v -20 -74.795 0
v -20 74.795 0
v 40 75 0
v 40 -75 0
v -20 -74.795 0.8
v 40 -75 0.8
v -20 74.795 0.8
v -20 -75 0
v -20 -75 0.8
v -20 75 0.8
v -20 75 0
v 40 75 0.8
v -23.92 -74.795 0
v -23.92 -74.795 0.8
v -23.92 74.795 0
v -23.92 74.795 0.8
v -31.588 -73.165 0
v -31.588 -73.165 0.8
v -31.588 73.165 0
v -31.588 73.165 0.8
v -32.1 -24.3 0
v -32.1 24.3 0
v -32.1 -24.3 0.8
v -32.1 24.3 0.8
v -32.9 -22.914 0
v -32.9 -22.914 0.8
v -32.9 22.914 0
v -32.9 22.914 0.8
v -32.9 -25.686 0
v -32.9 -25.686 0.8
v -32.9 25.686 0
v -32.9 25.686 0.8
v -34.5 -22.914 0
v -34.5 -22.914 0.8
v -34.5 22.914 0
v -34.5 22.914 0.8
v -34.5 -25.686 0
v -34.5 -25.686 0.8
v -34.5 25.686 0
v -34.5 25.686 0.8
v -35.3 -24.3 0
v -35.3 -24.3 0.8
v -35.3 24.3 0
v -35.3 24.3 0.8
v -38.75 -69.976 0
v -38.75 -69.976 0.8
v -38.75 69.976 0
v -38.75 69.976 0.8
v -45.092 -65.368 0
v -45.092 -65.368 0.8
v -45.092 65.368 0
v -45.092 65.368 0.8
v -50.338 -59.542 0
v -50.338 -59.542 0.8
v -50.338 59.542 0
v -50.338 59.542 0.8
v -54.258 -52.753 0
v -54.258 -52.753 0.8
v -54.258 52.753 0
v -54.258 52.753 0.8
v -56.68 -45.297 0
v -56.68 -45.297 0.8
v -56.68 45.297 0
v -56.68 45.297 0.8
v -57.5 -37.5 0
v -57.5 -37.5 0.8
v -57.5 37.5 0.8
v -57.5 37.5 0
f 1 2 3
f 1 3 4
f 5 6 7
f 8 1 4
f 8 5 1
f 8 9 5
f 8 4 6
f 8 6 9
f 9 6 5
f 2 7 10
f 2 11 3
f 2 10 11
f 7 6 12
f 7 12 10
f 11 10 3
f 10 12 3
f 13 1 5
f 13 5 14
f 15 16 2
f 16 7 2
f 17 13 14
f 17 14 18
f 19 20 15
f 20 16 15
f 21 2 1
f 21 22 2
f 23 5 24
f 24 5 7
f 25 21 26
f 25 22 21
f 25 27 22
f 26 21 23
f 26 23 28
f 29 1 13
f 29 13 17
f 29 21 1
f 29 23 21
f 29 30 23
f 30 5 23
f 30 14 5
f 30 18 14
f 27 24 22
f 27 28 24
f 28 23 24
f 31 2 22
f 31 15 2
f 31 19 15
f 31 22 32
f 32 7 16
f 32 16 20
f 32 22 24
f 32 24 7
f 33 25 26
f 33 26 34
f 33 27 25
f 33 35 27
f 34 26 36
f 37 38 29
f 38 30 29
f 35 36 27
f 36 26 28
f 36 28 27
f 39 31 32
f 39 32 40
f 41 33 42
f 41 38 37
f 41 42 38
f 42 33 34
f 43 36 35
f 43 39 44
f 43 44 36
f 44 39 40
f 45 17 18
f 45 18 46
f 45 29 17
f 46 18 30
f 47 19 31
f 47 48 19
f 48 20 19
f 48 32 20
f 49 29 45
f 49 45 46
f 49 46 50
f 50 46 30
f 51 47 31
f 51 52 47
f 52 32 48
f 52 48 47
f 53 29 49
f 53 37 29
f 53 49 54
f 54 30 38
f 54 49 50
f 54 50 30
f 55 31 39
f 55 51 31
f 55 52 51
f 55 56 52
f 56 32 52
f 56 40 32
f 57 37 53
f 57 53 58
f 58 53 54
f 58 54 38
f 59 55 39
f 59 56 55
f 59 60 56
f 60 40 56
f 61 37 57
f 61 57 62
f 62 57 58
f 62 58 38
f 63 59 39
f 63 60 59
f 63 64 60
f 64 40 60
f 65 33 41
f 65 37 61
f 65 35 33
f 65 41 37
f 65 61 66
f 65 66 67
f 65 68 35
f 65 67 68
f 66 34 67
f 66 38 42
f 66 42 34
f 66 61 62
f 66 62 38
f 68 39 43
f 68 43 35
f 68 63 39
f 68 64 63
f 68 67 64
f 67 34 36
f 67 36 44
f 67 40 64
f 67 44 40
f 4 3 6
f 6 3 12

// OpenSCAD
// file: lib/copyFunctions.scad
// copyFunctions.scad - library for copy versions of mirror/rotate/translate
// May 2019

// general use: just like normal version of given function

module rotate_copy(v=[1,0,0])
{
    children();
    rotate(v) children();
}

module mirror_copy(v=[1,0,0])
{
    children();
    mirror(v) children();
}

module translate_copy(v=[1,0,0])
{
    children();
    translate(v) children();
}
// file: ../configuration.scad
//$fn=40; // model faces resolution.

//COMMON PARAMETERS
global_clearance = 0.5; // additional space where needed due to printer precision
layer_thickness = 0.3; // layer which is going to be removed after printing
//M3 x 12 Bolt
M3_nut_diameter = 6.6;
M3_nut_height = 2.7;
M3_bolt_diameter = 3.2;
M3_bolt_head_height = 3;
M3_bolt_length = 12;
//M5 Bolt
M5_bolt_diameter = 5.5;
M5_nut_height = 4.5;
M5_nut_diameter = 9.4;
//M6 Bolt
M6_bolt_diameter = 6.5;
M6_nut_height = 4.9;
M6_nut_diameter = 11.8;


//----------------------------------------------------------------
//----------------------------------------------------------------
//WINDGAUGE02A_S02 - Parametry pro hlavni valec anemometru
S01_hloubka_zavitu=4;
S01_vyska=110; //80
S01_prumer_vnitrni=50;
S01_sila_materialu=1.2;
S01_vyska_horni_zavit=10;
S01_vyska_spodniho_zavitu=10;
S01_sila_drzaku_RJ11=3; //vyška drážky
S01_hrana_A_RJ11=12.3;
S01_hrana_B_RJ11=19;
S01_tolerance_zavit=1.5;

//Rozměry ložiska se závity
//LO_spodni_prumer=22;
LO_spodni_prumer=17.2; //bez krytu
LO_vyska_bez_krytu=15;
LO_doraz_prumer=44.3;
LO_horni_prumer=7.7;
LO_vyska_spodni_doraz=5;
LO_vyska_horni_doraz=9;
LO_vyska_dorazu=0;





//Obecné parametry
prumer_osicky=5.1;



//Parametry loziska
lozisko_prumer_vnitrni=4.9;
lozisko_prumer_vnejsi=16.1;
lozisko_vyska=5;
lozisko_prekryv=1.5;

//Parametry magnetu
magnet_prumer=6.3;
magnet_vyska=5;
magnet_zapusteni=2;
magnet_tolerance_prumeru=0.2;

//Parametry sroubu
prumer_sroubu=3.4;
prumer_hlavy_sroubu=8.2;
vyska_hlavy_sroubu=4.3;
vyska_matky=3;
sirka_matky=6.7;

sirka_matky_tol=0.175;
prumer_orechu=10;

//WINDGAUGE02A_R01 //pro lopatku
L01_hrana_drzaku_a=10;
L01_hrana_drzaku_b=3;
L01_delka_uchytu=19;
L01_prumer_lopatky=40;
L01_sila_materialu_lopatky=0.9;

//WINDGAUGE02A_D02 Anemometer holder
//   | |   Top ring with Screw-thread
//  /   \  Body
// |_____| Base
D02_magnet_base_height = 4.5 + 1.5*global_clearance; // HS-13 M5 magnet height without bolt
D02_magnet_diameter = 16.1 + global_clearance; // HS-13 M5 magnet diameter
D02_flat_magnet_diameter = 18.1 + global_clearance; // HS-13 M5 magnet diameter
D02_wall_thickness = 5; // body wall thickness
D02_connector_spacing = 40; // main body cut-through for connectors
D02_base_diameter = 140; // diameter of holder base
D02_base_height = max(M6_nut_height + 1.5,
                      D02_magnet_base_height + M5_nut_height/2 + 1.5); // height of holder base
D02_body_height = 60 - D02_base_height; // height of body between base and top ring
D02_screw_diameter = S01_prumer_vnitrni - S01_tolerance_zavit; // scew-thread diameter based on stand S01
D02_thread_height = S01_vyska_spodniho_zavitu; // screw-thread height based on stand S01
D02_top_ring_inner_diameter = D02_screw_diameter - 6; // inner diameter of top ring
D02_top_ring_outer_diameter = D02_screw_diameter + 4; // outer diameter of top ring
D02_top_ring_height = D02_thread_height + 5; // height of top ring
D02_total_height = D02_base_height + D02_body_height + D02_top_ring_height; // total height of anemometer holder
// Following parameters are obsolete, maintained only for compatibility.
D01_material_pod_zavitem = D02_top_ring_height - D02_thread_height;
D01_material_za_zavitem = D02_screw_diameter - D02_top_ring_inner_diameter;
D01_material_pred_zavitem = D02_top_ring_outer_diameter - D02_screw_diameter;
D01_polomer_zakladny = D02_base_diameter/2;
D01_sila_setny_spodniho_drzaku=D02_wall_thickness;
D01_vyska_spodni_casti_drzaku = D02_body_height + D02_base_height;
D01_sirka_otvoru_pro_konektor = D02_connector_spacing;
D01_ucyhtna_matice_material_nad = D02_base_height - M6_nut_height;
D01_uchytna_matice_vyska = M6_nut_height;
D01_uchytna_matice_sirka = M6_nut_diameter;
D01_uchytny_sroub_prumer = M6_bolt_diameter;

// Following parameters are actually used in D01 model.
//WINDGAUGE02A_D02 //uchyt na sloup
D02_sila_materialu=6;
D02_vyska_uchytky=40;
D02_prumer_obruby=27; // 3/4 trubka
D02_delka_celeho_uchytu=60;
D02_dotahova_vzdalenost=1.5;
D02_prumer_uchytneho_sroubu=4.2;
D02_sirka_matky=9.1; //pro M4
D02_vyska_matky=3;


//WINDGAUGE02A_R01 //rotor s prekritim statoru
R01_vyska_prekryti_statoru=10;
R01_sila_materialu_pro_prekriti=1.3;
R01_mezera_mezi_statorem_rotorem=3;

//WINDGAUGE02A_R03 //drzak magnetu
R05_sirka_matky=10;



R03_prumer_zavitu=40;
R04_zavit_vyska=5;
R02_zavit_vyska=10;
R01_zavit_vyska=5;
R03_mezera_mezi_statorem_rotorem=3;

R02_delka_kridla=45;
R02_vzdalenost_der=25;

R02_delka_vyrovnnavaci_tyce=35;
R02_hrana_drzaku=14;
R02_sila_materialu_pod_tyci=5;
R02_sila_materialu_kridla=1.2;
R02_sila_materialu_kridla_tolerance=0.3;

R05_vyska_kridla=100;
R05_delka_kridla=100;


//S04
I2CDIFF01A_sirka_kon=16.5; //sirka konektoru
I2CDIFF01A_vyska_kon=13.5; //vyska konektoru
I2CDIFF01A_sirka_mod_otvory=4; //kolik modul zabira der
I2CDIFF01A_vyska_PCB=2; //vyska mezi albase a konektorem
S04_sila_materialu=2;

//S04_USBI2C01A
USBI2C01A_sirka_kon=12; //sirka konektoru
USBI2C01A_vyska_kon=11; //vyska konektoru
USBI2C01A_sirka_mod_otvory=3; //kolik modul zabira der
USBI2C01A_vyska_PCB=2; //vyska mezi albase a konektorem


//WINDGAUGE03A_R03 // Venturi tube
R03_wide_D = 36; // Venturi wide tube inner diameter
R03_narrow_D = R03_wide_D/1.4; // Venturi narrow tube inner diameter
R03_global_clearance = global_clearance; // additional space where needed due to printer precision
R03_PCB_top_rim = 5.5; // vertical distance from top of tube to top of PCB
R03_PCB_height = 41; // height of PCB casing - if changed check casing
R03_PCB_width = 14; // width of PCB casing - if changed check casing
R03_PCB_depth = 3.7; // depth of PCB casing - if changed check casing
R03_PCB_connector_overlay = 2.5; // additional depth of PCB casing on connectors side - if changed check casing
R03_PCB_elevation = 2; // additional elevation of PCB for waterproofing
R03_air_tube_diameter = 2; // air tubes diameter
R03_sensor_housing_offset = 15;  // distance from venturi tube height to sensor housing drop
R03_sensor_offset = 2.2;  // SDP33 distance from PCB border to sensor
R03_sensor_pitch = 4.3;  // SDP33 distance between sensors
R03_sensor_diameter = 3.5;  // SDP33 sensor diameter
R03_sensor_depth = 2.5;  // SDP33 sensor depth
R03_slip_ring_offset = 0; // slip-ring offset from tube center
R03_venturi_tube_height = 150;  // Venturi tube height (limited by max print size)
R03_wall_thickness = 3; // Venturi tube wall thickness
R03_sealing_ring_thickness = 1.5; // sealing ring size
R03_fin_width = 0.8; // width of vertical stabilizator
R03_fin_length = 80; // length of vertical stabilizator
R03_fin_height = 150; // height of vertical stabilizator
R03_fin_holder_width = M3_bolt_length + M3_nut_height;
R03_fin_holder_height = M3_nut_diameter + 2*R03_wall_thickness;
R03_fin_holder_depth = R03_wide_D/2 + R03_fin_holder_height;
R03_balance_shelf_width = 20; // width of shelf for balance weights
R03_balance_shelf_height = 10; // height of shelf for balance weights
// main file
include <../configuration.scad>
use <./lib/copyFunctions.scad>

draft = true;

module WINDGAUGE01A_R05(draft = true)
{
    mirror_copy([0, 1, 0])
        difference()
        {
            // Fin
            union()
            {
                translate([-R03_fin_length/4 - R03_fin_height/4, -R03_fin_height/4, 0])
                        cube([R03_fin_height/4 + 3/4 * R03_fin_length, R03_fin_height/4,
                              R03_fin_width]);
                translate([-R03_fin_length/4, -R03_fin_height/4, 0])
                        cylinder(h = R03_fin_width, d = R03_fin_height/2);
                translate([-R03_fin_length/4, -R03_fin_height/2, 0])
                        cube([3/4 * R03_fin_length, R03_fin_height/4, R03_fin_width]);
            }
                // Bolt hole
                translate([-R03_fin_length/2 + R03_fin_holder_height/2,
                           -R03_fin_holder_depth + R03_fin_holder_height/2,
                           0])
                    cylinder(h = R03_fin_width, d = M3_bolt_diameter);
        }
}

difference()
{
    // If not draft -> move to print position.
    if (!draft)
        translate([0, 0, 0])
            rotate([0, 0, 0])
                WINDGAUGE01A_R05(false);
    else
        WINDGAUGE01A_R05();
    // Cut-out cube not needed in this model
    //if (draft)
    //    translate([0, -R03_wide_D, -2*R03_wide_D])
    //        cube(2*R03_wide_D);
}
